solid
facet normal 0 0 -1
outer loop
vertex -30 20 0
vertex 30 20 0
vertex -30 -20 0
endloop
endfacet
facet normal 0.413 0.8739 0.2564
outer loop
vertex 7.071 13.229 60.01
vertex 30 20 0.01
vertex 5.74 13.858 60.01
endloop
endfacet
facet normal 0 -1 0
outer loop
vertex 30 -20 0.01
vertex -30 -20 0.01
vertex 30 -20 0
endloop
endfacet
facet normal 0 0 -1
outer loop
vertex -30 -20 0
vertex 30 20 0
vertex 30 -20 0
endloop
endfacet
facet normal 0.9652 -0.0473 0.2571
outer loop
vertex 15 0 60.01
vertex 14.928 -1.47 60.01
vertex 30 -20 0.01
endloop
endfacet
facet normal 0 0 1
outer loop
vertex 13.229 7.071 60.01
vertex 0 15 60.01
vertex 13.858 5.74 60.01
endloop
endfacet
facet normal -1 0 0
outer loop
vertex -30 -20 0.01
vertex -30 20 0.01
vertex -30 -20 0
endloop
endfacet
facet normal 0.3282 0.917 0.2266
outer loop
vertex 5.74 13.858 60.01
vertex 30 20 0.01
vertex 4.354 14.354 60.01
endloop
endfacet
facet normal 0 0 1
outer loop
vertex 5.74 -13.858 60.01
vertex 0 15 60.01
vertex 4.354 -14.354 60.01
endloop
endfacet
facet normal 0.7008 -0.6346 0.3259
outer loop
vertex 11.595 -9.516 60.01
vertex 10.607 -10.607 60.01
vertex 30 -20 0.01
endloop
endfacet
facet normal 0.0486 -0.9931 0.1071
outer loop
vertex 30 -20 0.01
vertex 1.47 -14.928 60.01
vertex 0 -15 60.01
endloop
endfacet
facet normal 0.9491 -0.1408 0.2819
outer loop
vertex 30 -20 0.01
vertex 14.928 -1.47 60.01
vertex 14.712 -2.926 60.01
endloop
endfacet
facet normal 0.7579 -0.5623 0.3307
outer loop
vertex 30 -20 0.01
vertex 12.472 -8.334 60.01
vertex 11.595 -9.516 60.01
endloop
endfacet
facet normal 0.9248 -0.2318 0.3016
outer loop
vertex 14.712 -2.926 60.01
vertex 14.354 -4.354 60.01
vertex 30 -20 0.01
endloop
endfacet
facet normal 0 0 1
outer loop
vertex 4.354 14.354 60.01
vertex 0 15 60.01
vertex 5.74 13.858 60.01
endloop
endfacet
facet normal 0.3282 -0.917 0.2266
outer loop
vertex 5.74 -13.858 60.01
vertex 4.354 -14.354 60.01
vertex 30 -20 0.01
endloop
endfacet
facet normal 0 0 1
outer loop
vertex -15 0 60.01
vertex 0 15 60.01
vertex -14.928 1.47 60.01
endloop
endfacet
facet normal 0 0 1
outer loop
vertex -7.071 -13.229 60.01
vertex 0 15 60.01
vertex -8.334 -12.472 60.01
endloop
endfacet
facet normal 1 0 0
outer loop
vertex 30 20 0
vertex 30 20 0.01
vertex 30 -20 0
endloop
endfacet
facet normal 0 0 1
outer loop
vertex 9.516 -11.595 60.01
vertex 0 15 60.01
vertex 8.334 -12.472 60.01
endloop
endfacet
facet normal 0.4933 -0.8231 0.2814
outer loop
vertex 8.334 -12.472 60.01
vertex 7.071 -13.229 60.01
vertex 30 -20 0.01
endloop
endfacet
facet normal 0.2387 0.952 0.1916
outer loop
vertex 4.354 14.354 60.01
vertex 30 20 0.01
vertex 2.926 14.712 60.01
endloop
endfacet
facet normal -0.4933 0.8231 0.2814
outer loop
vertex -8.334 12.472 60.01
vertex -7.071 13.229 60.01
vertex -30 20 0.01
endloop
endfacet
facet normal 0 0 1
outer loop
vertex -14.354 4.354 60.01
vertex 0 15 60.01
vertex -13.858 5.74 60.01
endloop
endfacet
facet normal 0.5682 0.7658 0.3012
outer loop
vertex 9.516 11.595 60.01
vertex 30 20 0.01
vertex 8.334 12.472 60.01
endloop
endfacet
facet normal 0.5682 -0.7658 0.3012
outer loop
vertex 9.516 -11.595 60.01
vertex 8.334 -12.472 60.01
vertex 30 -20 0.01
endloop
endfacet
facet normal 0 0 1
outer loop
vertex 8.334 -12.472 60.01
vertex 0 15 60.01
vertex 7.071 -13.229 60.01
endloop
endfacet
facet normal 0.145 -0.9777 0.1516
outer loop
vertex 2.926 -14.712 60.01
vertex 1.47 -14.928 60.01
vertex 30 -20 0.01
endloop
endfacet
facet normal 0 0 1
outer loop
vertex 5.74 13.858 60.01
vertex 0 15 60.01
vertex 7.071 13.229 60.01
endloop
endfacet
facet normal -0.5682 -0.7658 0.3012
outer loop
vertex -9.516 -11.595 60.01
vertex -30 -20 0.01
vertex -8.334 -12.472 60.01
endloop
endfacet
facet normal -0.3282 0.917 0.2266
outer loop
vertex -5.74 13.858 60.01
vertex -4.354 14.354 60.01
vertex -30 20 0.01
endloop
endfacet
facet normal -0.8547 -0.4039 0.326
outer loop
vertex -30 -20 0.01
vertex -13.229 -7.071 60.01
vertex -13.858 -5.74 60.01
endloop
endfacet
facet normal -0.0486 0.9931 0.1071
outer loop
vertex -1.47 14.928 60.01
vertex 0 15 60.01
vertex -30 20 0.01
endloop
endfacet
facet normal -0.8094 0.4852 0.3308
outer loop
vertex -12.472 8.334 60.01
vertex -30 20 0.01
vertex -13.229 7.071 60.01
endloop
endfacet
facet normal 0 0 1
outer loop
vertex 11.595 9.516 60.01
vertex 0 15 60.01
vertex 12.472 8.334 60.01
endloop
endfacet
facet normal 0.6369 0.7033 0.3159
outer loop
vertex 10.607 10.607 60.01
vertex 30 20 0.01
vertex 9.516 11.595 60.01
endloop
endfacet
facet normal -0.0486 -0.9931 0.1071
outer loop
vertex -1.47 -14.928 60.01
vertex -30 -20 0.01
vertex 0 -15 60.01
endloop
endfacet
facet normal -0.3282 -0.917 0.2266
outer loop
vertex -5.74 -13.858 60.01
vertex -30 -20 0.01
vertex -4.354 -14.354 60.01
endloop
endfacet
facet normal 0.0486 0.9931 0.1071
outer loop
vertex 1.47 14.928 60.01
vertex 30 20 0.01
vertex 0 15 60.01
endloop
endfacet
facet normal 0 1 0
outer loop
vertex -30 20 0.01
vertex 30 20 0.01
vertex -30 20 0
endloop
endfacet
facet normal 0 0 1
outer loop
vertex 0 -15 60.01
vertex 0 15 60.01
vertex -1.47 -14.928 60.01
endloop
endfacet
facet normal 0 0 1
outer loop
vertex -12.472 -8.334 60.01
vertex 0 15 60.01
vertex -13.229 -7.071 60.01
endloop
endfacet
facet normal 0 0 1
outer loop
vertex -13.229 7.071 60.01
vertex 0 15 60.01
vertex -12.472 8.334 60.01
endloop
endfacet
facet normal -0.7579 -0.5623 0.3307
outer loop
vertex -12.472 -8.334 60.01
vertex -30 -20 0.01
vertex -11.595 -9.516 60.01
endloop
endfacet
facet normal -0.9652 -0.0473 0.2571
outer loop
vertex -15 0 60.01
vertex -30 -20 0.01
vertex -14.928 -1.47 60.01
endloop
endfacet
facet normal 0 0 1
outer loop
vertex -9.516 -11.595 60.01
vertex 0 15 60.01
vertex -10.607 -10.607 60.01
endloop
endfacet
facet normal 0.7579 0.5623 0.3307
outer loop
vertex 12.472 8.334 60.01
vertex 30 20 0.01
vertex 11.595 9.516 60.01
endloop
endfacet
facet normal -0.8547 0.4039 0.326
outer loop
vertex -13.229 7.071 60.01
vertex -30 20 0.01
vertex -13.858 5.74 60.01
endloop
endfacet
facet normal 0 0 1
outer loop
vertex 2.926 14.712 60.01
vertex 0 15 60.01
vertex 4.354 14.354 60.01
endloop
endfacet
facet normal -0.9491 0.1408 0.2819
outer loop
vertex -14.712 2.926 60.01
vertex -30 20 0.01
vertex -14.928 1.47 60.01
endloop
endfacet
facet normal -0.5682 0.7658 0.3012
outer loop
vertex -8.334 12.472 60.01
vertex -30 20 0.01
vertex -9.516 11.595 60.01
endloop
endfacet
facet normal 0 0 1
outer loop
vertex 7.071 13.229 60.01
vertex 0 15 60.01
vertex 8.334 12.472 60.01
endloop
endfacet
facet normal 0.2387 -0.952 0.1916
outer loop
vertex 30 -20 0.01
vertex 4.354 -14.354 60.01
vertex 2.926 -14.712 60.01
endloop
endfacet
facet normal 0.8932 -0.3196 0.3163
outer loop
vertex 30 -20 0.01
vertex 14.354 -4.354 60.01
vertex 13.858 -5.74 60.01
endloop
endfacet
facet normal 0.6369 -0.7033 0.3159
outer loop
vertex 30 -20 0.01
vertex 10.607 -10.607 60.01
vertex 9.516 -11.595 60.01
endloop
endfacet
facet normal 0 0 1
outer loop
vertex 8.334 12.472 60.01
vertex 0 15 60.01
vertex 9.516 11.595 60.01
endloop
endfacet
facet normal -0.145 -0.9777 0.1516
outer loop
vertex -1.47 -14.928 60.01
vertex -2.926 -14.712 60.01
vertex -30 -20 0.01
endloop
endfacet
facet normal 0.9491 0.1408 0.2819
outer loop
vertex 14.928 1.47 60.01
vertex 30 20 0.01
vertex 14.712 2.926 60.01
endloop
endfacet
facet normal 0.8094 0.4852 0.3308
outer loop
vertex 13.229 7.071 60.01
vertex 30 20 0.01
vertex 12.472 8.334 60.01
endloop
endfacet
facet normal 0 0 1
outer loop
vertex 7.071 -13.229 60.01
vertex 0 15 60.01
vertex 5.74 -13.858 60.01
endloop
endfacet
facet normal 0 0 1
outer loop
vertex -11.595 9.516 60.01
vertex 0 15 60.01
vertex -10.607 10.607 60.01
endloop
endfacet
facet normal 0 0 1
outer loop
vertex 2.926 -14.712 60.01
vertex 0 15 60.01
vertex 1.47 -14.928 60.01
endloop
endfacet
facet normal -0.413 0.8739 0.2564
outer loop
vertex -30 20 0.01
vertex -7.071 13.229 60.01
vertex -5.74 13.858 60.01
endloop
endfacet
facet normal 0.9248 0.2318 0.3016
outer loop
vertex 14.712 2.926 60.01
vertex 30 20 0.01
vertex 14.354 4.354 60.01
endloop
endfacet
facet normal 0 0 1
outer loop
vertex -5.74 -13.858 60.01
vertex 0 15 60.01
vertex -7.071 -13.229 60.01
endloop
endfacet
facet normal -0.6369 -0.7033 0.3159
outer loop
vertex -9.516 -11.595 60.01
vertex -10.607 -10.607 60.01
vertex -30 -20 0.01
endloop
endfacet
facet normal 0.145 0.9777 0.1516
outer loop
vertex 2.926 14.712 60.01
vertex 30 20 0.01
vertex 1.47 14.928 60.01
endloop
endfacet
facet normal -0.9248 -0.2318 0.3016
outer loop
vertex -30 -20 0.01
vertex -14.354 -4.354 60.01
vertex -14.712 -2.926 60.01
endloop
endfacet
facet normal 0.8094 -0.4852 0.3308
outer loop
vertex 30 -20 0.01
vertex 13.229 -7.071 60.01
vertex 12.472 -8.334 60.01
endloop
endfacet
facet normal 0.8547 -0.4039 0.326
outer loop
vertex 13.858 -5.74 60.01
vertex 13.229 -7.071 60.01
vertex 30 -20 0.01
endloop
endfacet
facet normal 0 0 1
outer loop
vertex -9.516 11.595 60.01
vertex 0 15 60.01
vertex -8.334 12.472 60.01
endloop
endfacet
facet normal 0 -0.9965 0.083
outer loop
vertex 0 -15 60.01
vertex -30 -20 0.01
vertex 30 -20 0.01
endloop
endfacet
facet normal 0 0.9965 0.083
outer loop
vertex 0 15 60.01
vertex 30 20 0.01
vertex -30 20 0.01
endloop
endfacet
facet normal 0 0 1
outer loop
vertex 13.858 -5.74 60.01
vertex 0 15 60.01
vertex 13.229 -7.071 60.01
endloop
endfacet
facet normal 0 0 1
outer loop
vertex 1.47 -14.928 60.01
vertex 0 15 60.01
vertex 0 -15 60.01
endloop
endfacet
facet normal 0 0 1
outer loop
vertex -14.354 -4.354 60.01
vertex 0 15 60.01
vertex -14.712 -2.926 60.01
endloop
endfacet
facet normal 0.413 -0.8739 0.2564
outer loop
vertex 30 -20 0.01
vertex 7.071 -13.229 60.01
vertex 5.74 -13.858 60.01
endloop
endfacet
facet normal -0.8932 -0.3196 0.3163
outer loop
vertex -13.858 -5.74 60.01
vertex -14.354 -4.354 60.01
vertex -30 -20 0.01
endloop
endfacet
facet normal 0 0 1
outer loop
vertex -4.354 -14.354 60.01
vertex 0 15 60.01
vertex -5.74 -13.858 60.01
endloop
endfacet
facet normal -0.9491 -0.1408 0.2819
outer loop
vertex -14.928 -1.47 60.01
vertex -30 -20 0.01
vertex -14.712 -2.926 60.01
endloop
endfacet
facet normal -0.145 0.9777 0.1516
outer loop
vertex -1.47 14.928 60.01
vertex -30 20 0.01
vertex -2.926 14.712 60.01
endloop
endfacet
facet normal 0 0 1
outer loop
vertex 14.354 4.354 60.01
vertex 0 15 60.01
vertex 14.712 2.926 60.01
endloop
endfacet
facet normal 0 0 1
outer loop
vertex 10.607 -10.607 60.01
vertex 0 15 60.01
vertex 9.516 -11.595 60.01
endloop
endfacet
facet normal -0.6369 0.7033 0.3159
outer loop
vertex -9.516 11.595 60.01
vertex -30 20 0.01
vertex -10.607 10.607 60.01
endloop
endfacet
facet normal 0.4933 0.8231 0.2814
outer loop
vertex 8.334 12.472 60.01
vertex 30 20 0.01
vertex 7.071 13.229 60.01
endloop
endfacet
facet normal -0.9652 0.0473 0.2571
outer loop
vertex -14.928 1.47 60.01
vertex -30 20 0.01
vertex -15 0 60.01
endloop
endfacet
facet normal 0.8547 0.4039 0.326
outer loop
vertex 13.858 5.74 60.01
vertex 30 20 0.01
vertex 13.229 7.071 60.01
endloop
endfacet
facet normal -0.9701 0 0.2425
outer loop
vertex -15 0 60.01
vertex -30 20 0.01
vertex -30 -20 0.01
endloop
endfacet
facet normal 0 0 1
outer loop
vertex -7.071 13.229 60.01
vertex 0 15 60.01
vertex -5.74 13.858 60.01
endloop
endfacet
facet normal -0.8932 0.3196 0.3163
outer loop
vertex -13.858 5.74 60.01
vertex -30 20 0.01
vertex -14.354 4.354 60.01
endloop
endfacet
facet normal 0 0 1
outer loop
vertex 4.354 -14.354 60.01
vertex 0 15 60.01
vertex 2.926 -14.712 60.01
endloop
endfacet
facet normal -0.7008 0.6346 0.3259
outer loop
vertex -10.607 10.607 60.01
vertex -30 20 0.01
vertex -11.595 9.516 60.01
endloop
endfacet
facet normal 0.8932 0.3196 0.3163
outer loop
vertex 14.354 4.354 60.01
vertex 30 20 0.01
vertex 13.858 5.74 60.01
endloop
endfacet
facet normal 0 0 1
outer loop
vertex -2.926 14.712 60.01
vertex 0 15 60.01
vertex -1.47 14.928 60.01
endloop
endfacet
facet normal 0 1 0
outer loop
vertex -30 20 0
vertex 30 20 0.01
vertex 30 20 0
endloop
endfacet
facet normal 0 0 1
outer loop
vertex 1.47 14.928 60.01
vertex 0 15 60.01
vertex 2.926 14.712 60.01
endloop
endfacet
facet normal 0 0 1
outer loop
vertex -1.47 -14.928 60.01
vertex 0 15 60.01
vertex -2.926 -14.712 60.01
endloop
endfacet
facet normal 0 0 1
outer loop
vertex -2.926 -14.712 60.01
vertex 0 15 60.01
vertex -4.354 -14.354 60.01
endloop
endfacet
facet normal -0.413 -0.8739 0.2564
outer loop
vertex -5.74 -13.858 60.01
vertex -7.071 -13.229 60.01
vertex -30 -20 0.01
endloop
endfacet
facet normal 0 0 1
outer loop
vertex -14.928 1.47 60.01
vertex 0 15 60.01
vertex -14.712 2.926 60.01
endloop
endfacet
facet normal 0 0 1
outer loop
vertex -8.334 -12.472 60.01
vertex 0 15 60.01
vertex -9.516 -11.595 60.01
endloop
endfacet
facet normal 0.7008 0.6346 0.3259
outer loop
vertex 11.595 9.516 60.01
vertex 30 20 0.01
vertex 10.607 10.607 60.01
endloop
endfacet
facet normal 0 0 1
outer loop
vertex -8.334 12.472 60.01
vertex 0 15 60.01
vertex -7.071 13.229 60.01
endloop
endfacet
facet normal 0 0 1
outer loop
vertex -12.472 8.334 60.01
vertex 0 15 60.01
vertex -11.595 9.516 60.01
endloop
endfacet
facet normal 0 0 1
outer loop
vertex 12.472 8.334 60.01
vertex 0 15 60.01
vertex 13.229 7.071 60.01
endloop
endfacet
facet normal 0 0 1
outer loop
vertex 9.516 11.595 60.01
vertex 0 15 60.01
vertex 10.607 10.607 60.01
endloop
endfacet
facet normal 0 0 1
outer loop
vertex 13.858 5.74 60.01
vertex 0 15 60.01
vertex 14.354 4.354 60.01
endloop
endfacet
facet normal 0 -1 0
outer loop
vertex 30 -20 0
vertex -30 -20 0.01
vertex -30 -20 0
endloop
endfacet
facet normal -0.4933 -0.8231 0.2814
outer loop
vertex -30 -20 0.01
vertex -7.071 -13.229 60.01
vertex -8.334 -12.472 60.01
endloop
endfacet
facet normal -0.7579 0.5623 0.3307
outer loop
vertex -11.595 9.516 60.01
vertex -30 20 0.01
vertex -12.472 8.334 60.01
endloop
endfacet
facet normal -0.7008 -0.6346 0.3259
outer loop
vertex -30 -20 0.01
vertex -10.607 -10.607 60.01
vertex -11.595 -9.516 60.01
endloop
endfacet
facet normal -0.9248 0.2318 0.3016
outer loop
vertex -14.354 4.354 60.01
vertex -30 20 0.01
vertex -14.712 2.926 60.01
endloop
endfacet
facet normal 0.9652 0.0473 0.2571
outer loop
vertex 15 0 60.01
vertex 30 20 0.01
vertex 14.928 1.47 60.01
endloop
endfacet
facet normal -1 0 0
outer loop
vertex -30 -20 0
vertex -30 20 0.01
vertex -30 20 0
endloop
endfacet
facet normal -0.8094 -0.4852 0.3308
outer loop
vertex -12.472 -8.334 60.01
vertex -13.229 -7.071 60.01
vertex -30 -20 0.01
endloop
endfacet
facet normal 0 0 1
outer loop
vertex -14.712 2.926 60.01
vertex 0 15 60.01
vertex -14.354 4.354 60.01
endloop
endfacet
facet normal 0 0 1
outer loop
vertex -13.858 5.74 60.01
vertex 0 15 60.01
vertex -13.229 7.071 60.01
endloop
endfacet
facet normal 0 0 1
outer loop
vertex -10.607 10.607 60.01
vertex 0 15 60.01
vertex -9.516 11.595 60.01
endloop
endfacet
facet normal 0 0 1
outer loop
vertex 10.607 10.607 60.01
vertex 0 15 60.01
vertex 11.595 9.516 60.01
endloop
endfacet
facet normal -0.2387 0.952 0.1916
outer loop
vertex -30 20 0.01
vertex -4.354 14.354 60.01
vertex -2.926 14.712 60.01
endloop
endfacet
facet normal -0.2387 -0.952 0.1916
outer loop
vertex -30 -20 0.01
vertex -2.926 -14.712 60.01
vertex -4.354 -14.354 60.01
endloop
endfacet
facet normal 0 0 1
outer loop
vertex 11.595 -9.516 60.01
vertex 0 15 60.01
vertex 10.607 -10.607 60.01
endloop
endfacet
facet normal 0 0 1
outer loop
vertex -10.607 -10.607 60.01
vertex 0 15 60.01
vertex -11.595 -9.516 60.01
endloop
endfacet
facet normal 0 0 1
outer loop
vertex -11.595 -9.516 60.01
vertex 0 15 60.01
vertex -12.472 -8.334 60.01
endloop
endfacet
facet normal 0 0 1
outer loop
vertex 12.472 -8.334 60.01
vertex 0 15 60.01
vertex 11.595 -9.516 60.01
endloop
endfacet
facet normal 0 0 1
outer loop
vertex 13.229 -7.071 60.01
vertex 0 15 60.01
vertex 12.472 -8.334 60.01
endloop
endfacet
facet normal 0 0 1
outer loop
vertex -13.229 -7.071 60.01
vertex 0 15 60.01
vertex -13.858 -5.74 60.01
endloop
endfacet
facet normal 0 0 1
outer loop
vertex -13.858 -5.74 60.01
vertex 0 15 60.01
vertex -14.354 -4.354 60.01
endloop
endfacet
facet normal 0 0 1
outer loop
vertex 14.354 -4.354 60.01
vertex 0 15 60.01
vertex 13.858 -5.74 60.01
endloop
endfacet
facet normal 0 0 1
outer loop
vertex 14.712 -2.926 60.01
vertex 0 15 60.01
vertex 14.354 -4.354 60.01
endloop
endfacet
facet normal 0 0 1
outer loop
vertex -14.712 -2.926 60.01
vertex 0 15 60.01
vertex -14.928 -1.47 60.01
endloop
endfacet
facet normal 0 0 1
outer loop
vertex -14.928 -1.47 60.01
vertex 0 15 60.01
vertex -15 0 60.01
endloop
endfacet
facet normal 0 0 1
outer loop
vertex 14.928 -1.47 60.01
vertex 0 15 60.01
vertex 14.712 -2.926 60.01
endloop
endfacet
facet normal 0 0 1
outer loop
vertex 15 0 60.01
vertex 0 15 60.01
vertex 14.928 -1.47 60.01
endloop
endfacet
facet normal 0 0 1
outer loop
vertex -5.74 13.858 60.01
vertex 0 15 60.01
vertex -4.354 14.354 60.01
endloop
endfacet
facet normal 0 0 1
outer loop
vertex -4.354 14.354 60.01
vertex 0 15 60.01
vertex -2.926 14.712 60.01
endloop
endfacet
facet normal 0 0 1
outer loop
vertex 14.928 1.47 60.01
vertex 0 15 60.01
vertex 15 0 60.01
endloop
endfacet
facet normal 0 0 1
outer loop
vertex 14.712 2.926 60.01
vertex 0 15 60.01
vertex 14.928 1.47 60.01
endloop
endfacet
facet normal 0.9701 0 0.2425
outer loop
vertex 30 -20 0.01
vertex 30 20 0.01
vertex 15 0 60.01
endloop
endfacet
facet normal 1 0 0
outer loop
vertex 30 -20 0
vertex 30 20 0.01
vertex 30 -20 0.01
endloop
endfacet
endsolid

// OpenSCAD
/* doodle-meta {"version":1,"parameters":{"base_width":{"label":"Base Width","description":"Width of the rectangular base along X","unit":"mm","feature":"base_width"},"base_depth":{"label":"Base Depth","description":"Depth of the rectangular base along Y","unit":"mm","feature":"base_depth"},"top_diameter":{"label":"Top Diameter","description":"Diameter of the circular top face","unit":"mm","feature":"top_diameter"},"height":{"label":"Height","description":"Vertical height of the transition piece","unit":"mm","feature":"height"}},"features":{"base_width":{"kind":"dimension","axis":"x","label":"Base Width"},"base_depth":{"kind":"dimension","axis":"y","label":"Base Depth"},"top_diameter":{"kind":"dimension","axis":"x","label":"Top Diameter"},"height":{"kind":"dimension","axis":"z","label":"Height"}}} */

// User-editable parameters
base_width = 60;
base_depth = 40;
top_diameter = 30;
height = 60;

// Derived constants (not user-editable)
$fn = 64;
top_radius = top_diameter / 2;

// Module: Rectangular base profile centered at origin in XY plane
module rect_profile(w, d) {
    square([w, d], center=true);
}

// Module: Circular top profile centered at origin in XY plane
module circle_profile(d) {
    circle(d=d);
}

// Main design
// Loft from rectangular base to circular top
// The loft creates a solid with planar faces connecting the two profiles
// Base is at Z=0, Top is at Z=height

// To create the loft, we use a convex hull of the two profiles
// Profile 1: Rectangle at Z=0
// Profile 2: Circle at Z=height

hull() {
    // Bottom rectangular profile
    translate([0, 0, 0])
        linear_extrude(height=0.01, center=false)
            rect_profile(base_width, base_depth);
    
    // Top circular profile
    translate([0, 0, height])
        linear_extrude(height=0.01, center=false)
            circle_profile(top_diameter);
}
